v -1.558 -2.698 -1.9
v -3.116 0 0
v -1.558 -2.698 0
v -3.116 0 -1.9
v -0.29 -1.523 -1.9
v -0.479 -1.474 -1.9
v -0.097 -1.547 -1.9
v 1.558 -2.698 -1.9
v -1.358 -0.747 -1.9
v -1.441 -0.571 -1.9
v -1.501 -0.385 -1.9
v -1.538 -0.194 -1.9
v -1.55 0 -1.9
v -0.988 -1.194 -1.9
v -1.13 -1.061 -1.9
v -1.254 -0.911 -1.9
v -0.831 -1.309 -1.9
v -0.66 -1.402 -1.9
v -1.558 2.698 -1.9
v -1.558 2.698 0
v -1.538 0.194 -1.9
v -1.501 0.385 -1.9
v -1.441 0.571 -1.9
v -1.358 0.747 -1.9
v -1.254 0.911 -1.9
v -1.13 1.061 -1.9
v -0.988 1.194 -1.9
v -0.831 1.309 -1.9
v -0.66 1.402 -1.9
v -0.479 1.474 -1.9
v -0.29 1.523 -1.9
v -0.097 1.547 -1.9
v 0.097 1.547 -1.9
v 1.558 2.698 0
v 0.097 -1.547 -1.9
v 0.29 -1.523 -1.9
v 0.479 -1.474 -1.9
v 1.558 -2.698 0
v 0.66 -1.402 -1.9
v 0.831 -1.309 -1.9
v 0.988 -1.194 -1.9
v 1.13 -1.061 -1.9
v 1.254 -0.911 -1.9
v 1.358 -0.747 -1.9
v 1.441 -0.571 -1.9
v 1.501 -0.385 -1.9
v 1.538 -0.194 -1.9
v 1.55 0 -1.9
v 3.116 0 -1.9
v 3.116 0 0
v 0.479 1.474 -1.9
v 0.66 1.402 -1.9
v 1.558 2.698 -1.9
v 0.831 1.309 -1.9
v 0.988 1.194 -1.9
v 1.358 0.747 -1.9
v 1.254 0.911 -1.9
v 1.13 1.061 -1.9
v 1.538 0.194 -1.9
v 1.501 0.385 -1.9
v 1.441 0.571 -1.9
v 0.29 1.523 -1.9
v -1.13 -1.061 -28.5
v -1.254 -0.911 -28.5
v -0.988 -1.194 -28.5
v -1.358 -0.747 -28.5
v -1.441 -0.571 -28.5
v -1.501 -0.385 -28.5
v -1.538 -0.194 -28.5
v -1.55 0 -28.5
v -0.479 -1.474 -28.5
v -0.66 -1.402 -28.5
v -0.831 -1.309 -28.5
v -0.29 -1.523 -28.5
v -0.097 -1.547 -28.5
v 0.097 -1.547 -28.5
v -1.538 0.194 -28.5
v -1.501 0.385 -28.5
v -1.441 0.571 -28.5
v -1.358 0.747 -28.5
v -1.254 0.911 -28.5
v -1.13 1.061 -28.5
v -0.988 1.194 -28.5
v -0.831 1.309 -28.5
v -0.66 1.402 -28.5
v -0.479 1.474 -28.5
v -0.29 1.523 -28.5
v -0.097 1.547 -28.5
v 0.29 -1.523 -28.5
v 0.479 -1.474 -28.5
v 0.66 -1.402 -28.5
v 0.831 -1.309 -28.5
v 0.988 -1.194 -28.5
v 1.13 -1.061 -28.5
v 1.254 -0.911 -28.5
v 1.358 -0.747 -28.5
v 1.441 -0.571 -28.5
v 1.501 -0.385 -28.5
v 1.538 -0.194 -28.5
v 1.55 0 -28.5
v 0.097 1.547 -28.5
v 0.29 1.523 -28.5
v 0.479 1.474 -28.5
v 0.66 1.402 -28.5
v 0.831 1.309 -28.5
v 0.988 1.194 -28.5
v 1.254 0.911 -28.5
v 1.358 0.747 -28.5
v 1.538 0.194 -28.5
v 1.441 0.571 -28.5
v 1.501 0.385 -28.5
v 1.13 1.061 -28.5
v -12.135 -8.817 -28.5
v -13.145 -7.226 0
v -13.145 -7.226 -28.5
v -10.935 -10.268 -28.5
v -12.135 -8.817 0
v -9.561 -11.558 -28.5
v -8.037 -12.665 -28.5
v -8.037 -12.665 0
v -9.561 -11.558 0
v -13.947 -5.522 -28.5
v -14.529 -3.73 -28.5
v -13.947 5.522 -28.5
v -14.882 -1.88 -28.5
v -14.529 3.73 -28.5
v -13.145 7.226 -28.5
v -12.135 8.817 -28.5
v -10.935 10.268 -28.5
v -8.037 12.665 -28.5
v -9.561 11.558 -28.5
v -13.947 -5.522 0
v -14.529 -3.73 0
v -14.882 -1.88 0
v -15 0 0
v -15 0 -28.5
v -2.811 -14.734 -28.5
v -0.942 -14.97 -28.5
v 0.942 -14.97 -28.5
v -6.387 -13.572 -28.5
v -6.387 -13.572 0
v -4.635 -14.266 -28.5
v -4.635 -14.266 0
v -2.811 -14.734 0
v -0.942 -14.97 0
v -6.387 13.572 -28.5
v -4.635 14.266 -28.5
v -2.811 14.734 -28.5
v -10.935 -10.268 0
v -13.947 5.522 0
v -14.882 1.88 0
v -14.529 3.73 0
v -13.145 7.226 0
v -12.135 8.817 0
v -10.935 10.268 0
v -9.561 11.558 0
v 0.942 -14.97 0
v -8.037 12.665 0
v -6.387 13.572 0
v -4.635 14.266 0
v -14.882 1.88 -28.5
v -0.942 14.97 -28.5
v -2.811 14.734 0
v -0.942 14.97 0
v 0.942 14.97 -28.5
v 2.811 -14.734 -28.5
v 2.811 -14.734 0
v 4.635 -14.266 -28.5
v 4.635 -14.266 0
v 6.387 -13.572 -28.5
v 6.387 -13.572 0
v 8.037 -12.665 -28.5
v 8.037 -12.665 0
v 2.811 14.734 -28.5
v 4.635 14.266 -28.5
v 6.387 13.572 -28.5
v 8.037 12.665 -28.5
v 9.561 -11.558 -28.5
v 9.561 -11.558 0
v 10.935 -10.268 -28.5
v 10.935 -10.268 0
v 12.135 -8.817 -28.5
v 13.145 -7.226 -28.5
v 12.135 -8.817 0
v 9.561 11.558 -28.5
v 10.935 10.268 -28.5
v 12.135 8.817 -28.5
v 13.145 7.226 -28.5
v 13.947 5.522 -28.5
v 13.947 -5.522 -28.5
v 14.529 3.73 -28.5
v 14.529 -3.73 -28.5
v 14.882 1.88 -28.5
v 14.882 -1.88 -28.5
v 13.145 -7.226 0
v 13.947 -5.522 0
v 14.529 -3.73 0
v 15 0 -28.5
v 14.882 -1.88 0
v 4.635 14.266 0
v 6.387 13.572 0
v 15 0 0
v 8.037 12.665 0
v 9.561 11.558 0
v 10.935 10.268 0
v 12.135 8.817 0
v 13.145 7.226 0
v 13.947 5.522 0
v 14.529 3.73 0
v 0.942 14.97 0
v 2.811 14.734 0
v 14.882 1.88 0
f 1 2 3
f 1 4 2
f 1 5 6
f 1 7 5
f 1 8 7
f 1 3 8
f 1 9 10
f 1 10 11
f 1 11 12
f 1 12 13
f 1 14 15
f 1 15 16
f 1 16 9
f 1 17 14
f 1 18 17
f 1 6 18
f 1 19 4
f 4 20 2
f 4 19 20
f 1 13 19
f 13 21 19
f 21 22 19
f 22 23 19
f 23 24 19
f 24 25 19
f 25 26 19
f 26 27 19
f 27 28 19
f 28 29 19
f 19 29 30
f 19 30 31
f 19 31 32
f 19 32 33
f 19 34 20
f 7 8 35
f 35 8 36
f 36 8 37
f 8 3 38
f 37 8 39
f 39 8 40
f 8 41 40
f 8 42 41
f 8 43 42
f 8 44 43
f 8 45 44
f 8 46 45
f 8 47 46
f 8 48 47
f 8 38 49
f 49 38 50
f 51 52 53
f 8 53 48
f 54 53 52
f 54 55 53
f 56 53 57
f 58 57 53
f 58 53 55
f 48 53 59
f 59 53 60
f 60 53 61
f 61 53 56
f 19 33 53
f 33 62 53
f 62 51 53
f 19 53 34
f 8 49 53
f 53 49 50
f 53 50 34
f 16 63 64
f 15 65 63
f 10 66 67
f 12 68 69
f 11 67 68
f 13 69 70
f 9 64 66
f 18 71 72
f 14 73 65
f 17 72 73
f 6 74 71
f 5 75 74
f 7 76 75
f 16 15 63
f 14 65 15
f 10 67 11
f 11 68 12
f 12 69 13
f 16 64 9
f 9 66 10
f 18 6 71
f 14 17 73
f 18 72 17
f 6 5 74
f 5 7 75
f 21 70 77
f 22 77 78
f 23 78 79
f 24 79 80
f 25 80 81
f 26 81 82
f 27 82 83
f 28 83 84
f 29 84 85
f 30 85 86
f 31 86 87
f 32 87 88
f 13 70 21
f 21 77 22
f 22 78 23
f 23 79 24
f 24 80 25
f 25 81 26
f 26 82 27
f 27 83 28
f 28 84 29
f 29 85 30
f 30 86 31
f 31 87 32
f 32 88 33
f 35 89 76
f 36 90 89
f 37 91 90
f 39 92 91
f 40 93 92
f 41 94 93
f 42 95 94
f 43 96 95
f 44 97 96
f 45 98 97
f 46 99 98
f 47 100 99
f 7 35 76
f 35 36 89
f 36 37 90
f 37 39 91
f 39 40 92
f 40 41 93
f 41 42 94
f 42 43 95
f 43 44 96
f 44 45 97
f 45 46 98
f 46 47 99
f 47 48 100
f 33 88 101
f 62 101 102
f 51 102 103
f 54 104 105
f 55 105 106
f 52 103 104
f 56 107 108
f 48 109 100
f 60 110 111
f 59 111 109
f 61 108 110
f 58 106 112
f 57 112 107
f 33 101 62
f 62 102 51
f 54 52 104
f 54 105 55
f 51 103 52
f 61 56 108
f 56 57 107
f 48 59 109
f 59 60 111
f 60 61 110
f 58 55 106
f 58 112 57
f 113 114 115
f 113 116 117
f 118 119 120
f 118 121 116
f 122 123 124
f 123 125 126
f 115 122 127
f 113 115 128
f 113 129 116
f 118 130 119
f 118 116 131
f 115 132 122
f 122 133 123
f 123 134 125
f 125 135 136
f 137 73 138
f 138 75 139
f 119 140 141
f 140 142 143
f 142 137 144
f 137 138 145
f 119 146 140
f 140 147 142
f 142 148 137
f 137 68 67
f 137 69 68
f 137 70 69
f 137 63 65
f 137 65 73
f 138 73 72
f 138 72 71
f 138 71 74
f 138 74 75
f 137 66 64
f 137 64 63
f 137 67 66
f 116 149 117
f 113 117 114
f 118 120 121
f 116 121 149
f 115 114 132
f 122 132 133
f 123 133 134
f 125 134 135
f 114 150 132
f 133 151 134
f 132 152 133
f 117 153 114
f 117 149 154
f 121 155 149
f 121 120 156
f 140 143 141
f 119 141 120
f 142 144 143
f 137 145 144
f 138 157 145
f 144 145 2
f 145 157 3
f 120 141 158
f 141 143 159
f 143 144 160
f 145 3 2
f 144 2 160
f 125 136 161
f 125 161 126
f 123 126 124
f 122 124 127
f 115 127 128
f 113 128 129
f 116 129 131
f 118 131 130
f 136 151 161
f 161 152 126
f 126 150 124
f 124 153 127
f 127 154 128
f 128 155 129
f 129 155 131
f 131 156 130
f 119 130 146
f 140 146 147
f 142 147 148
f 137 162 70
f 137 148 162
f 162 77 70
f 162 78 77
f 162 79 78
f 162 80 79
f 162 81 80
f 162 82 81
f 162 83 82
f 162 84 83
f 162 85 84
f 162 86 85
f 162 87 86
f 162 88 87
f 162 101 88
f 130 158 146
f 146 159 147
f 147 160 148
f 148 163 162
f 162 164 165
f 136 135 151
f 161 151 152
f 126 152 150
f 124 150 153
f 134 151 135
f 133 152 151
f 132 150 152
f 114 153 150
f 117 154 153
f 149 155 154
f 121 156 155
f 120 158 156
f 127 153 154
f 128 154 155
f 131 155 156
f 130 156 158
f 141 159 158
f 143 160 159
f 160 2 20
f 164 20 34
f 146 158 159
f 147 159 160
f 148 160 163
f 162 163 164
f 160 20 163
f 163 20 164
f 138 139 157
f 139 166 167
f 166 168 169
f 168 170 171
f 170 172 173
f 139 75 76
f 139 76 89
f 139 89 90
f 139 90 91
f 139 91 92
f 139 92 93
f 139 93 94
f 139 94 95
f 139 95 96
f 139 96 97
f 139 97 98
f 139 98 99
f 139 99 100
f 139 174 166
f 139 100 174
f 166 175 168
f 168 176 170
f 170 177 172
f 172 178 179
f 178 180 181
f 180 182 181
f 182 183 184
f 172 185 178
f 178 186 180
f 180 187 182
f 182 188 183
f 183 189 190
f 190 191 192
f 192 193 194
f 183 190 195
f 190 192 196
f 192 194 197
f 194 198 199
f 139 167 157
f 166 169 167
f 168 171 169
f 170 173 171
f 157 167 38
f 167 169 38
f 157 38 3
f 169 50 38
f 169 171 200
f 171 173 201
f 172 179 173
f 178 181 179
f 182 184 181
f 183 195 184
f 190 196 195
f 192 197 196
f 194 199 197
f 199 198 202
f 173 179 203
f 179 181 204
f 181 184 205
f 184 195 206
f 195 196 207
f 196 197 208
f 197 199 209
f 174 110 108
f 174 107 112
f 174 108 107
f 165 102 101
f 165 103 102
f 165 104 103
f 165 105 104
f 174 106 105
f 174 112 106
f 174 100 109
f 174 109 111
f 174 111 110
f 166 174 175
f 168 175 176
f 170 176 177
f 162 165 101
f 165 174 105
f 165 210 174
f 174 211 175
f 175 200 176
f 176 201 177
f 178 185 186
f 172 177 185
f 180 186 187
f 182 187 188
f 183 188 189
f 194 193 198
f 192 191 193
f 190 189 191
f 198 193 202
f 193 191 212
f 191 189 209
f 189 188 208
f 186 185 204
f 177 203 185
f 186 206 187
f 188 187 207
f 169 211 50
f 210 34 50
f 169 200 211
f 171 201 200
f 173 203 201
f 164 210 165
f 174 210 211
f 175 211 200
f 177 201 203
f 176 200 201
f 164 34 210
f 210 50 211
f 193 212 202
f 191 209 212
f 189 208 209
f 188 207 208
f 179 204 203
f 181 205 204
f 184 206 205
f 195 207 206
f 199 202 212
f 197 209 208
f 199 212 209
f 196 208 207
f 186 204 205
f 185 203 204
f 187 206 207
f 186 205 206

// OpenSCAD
$fn = 50;

difference() {
	union() {
		translate(v = [0, 0, -28.5]) {
			cylinder(h = 28.5, r = 15.0);
		}
	}
	union() {
		translate(v = [0, 0, 0]) {
			rotate(a = [0, 0, 0]) {
				difference() {
					union() {
						translate(v = [0, 0, -1.9]) {
							linear_extrude(height = 1.9) {
								polygon(points = [[3.1158, 0.0], [1.5579000000000005, 2.698361953111554], [-1.5578999999999994, 2.6983619531115544], [-3.1158, 3.815754496783323e-16], [-1.5579000000000014, -2.6983619531115535], [1.557899999999998, -2.6983619531115552]]);
							}
						}
					}
					union();
				}
			}
		}
		#translate(v = [0, 0, -100.0]) {
			cylinder(h = 200, r = 1.55);
		}
	}
}
